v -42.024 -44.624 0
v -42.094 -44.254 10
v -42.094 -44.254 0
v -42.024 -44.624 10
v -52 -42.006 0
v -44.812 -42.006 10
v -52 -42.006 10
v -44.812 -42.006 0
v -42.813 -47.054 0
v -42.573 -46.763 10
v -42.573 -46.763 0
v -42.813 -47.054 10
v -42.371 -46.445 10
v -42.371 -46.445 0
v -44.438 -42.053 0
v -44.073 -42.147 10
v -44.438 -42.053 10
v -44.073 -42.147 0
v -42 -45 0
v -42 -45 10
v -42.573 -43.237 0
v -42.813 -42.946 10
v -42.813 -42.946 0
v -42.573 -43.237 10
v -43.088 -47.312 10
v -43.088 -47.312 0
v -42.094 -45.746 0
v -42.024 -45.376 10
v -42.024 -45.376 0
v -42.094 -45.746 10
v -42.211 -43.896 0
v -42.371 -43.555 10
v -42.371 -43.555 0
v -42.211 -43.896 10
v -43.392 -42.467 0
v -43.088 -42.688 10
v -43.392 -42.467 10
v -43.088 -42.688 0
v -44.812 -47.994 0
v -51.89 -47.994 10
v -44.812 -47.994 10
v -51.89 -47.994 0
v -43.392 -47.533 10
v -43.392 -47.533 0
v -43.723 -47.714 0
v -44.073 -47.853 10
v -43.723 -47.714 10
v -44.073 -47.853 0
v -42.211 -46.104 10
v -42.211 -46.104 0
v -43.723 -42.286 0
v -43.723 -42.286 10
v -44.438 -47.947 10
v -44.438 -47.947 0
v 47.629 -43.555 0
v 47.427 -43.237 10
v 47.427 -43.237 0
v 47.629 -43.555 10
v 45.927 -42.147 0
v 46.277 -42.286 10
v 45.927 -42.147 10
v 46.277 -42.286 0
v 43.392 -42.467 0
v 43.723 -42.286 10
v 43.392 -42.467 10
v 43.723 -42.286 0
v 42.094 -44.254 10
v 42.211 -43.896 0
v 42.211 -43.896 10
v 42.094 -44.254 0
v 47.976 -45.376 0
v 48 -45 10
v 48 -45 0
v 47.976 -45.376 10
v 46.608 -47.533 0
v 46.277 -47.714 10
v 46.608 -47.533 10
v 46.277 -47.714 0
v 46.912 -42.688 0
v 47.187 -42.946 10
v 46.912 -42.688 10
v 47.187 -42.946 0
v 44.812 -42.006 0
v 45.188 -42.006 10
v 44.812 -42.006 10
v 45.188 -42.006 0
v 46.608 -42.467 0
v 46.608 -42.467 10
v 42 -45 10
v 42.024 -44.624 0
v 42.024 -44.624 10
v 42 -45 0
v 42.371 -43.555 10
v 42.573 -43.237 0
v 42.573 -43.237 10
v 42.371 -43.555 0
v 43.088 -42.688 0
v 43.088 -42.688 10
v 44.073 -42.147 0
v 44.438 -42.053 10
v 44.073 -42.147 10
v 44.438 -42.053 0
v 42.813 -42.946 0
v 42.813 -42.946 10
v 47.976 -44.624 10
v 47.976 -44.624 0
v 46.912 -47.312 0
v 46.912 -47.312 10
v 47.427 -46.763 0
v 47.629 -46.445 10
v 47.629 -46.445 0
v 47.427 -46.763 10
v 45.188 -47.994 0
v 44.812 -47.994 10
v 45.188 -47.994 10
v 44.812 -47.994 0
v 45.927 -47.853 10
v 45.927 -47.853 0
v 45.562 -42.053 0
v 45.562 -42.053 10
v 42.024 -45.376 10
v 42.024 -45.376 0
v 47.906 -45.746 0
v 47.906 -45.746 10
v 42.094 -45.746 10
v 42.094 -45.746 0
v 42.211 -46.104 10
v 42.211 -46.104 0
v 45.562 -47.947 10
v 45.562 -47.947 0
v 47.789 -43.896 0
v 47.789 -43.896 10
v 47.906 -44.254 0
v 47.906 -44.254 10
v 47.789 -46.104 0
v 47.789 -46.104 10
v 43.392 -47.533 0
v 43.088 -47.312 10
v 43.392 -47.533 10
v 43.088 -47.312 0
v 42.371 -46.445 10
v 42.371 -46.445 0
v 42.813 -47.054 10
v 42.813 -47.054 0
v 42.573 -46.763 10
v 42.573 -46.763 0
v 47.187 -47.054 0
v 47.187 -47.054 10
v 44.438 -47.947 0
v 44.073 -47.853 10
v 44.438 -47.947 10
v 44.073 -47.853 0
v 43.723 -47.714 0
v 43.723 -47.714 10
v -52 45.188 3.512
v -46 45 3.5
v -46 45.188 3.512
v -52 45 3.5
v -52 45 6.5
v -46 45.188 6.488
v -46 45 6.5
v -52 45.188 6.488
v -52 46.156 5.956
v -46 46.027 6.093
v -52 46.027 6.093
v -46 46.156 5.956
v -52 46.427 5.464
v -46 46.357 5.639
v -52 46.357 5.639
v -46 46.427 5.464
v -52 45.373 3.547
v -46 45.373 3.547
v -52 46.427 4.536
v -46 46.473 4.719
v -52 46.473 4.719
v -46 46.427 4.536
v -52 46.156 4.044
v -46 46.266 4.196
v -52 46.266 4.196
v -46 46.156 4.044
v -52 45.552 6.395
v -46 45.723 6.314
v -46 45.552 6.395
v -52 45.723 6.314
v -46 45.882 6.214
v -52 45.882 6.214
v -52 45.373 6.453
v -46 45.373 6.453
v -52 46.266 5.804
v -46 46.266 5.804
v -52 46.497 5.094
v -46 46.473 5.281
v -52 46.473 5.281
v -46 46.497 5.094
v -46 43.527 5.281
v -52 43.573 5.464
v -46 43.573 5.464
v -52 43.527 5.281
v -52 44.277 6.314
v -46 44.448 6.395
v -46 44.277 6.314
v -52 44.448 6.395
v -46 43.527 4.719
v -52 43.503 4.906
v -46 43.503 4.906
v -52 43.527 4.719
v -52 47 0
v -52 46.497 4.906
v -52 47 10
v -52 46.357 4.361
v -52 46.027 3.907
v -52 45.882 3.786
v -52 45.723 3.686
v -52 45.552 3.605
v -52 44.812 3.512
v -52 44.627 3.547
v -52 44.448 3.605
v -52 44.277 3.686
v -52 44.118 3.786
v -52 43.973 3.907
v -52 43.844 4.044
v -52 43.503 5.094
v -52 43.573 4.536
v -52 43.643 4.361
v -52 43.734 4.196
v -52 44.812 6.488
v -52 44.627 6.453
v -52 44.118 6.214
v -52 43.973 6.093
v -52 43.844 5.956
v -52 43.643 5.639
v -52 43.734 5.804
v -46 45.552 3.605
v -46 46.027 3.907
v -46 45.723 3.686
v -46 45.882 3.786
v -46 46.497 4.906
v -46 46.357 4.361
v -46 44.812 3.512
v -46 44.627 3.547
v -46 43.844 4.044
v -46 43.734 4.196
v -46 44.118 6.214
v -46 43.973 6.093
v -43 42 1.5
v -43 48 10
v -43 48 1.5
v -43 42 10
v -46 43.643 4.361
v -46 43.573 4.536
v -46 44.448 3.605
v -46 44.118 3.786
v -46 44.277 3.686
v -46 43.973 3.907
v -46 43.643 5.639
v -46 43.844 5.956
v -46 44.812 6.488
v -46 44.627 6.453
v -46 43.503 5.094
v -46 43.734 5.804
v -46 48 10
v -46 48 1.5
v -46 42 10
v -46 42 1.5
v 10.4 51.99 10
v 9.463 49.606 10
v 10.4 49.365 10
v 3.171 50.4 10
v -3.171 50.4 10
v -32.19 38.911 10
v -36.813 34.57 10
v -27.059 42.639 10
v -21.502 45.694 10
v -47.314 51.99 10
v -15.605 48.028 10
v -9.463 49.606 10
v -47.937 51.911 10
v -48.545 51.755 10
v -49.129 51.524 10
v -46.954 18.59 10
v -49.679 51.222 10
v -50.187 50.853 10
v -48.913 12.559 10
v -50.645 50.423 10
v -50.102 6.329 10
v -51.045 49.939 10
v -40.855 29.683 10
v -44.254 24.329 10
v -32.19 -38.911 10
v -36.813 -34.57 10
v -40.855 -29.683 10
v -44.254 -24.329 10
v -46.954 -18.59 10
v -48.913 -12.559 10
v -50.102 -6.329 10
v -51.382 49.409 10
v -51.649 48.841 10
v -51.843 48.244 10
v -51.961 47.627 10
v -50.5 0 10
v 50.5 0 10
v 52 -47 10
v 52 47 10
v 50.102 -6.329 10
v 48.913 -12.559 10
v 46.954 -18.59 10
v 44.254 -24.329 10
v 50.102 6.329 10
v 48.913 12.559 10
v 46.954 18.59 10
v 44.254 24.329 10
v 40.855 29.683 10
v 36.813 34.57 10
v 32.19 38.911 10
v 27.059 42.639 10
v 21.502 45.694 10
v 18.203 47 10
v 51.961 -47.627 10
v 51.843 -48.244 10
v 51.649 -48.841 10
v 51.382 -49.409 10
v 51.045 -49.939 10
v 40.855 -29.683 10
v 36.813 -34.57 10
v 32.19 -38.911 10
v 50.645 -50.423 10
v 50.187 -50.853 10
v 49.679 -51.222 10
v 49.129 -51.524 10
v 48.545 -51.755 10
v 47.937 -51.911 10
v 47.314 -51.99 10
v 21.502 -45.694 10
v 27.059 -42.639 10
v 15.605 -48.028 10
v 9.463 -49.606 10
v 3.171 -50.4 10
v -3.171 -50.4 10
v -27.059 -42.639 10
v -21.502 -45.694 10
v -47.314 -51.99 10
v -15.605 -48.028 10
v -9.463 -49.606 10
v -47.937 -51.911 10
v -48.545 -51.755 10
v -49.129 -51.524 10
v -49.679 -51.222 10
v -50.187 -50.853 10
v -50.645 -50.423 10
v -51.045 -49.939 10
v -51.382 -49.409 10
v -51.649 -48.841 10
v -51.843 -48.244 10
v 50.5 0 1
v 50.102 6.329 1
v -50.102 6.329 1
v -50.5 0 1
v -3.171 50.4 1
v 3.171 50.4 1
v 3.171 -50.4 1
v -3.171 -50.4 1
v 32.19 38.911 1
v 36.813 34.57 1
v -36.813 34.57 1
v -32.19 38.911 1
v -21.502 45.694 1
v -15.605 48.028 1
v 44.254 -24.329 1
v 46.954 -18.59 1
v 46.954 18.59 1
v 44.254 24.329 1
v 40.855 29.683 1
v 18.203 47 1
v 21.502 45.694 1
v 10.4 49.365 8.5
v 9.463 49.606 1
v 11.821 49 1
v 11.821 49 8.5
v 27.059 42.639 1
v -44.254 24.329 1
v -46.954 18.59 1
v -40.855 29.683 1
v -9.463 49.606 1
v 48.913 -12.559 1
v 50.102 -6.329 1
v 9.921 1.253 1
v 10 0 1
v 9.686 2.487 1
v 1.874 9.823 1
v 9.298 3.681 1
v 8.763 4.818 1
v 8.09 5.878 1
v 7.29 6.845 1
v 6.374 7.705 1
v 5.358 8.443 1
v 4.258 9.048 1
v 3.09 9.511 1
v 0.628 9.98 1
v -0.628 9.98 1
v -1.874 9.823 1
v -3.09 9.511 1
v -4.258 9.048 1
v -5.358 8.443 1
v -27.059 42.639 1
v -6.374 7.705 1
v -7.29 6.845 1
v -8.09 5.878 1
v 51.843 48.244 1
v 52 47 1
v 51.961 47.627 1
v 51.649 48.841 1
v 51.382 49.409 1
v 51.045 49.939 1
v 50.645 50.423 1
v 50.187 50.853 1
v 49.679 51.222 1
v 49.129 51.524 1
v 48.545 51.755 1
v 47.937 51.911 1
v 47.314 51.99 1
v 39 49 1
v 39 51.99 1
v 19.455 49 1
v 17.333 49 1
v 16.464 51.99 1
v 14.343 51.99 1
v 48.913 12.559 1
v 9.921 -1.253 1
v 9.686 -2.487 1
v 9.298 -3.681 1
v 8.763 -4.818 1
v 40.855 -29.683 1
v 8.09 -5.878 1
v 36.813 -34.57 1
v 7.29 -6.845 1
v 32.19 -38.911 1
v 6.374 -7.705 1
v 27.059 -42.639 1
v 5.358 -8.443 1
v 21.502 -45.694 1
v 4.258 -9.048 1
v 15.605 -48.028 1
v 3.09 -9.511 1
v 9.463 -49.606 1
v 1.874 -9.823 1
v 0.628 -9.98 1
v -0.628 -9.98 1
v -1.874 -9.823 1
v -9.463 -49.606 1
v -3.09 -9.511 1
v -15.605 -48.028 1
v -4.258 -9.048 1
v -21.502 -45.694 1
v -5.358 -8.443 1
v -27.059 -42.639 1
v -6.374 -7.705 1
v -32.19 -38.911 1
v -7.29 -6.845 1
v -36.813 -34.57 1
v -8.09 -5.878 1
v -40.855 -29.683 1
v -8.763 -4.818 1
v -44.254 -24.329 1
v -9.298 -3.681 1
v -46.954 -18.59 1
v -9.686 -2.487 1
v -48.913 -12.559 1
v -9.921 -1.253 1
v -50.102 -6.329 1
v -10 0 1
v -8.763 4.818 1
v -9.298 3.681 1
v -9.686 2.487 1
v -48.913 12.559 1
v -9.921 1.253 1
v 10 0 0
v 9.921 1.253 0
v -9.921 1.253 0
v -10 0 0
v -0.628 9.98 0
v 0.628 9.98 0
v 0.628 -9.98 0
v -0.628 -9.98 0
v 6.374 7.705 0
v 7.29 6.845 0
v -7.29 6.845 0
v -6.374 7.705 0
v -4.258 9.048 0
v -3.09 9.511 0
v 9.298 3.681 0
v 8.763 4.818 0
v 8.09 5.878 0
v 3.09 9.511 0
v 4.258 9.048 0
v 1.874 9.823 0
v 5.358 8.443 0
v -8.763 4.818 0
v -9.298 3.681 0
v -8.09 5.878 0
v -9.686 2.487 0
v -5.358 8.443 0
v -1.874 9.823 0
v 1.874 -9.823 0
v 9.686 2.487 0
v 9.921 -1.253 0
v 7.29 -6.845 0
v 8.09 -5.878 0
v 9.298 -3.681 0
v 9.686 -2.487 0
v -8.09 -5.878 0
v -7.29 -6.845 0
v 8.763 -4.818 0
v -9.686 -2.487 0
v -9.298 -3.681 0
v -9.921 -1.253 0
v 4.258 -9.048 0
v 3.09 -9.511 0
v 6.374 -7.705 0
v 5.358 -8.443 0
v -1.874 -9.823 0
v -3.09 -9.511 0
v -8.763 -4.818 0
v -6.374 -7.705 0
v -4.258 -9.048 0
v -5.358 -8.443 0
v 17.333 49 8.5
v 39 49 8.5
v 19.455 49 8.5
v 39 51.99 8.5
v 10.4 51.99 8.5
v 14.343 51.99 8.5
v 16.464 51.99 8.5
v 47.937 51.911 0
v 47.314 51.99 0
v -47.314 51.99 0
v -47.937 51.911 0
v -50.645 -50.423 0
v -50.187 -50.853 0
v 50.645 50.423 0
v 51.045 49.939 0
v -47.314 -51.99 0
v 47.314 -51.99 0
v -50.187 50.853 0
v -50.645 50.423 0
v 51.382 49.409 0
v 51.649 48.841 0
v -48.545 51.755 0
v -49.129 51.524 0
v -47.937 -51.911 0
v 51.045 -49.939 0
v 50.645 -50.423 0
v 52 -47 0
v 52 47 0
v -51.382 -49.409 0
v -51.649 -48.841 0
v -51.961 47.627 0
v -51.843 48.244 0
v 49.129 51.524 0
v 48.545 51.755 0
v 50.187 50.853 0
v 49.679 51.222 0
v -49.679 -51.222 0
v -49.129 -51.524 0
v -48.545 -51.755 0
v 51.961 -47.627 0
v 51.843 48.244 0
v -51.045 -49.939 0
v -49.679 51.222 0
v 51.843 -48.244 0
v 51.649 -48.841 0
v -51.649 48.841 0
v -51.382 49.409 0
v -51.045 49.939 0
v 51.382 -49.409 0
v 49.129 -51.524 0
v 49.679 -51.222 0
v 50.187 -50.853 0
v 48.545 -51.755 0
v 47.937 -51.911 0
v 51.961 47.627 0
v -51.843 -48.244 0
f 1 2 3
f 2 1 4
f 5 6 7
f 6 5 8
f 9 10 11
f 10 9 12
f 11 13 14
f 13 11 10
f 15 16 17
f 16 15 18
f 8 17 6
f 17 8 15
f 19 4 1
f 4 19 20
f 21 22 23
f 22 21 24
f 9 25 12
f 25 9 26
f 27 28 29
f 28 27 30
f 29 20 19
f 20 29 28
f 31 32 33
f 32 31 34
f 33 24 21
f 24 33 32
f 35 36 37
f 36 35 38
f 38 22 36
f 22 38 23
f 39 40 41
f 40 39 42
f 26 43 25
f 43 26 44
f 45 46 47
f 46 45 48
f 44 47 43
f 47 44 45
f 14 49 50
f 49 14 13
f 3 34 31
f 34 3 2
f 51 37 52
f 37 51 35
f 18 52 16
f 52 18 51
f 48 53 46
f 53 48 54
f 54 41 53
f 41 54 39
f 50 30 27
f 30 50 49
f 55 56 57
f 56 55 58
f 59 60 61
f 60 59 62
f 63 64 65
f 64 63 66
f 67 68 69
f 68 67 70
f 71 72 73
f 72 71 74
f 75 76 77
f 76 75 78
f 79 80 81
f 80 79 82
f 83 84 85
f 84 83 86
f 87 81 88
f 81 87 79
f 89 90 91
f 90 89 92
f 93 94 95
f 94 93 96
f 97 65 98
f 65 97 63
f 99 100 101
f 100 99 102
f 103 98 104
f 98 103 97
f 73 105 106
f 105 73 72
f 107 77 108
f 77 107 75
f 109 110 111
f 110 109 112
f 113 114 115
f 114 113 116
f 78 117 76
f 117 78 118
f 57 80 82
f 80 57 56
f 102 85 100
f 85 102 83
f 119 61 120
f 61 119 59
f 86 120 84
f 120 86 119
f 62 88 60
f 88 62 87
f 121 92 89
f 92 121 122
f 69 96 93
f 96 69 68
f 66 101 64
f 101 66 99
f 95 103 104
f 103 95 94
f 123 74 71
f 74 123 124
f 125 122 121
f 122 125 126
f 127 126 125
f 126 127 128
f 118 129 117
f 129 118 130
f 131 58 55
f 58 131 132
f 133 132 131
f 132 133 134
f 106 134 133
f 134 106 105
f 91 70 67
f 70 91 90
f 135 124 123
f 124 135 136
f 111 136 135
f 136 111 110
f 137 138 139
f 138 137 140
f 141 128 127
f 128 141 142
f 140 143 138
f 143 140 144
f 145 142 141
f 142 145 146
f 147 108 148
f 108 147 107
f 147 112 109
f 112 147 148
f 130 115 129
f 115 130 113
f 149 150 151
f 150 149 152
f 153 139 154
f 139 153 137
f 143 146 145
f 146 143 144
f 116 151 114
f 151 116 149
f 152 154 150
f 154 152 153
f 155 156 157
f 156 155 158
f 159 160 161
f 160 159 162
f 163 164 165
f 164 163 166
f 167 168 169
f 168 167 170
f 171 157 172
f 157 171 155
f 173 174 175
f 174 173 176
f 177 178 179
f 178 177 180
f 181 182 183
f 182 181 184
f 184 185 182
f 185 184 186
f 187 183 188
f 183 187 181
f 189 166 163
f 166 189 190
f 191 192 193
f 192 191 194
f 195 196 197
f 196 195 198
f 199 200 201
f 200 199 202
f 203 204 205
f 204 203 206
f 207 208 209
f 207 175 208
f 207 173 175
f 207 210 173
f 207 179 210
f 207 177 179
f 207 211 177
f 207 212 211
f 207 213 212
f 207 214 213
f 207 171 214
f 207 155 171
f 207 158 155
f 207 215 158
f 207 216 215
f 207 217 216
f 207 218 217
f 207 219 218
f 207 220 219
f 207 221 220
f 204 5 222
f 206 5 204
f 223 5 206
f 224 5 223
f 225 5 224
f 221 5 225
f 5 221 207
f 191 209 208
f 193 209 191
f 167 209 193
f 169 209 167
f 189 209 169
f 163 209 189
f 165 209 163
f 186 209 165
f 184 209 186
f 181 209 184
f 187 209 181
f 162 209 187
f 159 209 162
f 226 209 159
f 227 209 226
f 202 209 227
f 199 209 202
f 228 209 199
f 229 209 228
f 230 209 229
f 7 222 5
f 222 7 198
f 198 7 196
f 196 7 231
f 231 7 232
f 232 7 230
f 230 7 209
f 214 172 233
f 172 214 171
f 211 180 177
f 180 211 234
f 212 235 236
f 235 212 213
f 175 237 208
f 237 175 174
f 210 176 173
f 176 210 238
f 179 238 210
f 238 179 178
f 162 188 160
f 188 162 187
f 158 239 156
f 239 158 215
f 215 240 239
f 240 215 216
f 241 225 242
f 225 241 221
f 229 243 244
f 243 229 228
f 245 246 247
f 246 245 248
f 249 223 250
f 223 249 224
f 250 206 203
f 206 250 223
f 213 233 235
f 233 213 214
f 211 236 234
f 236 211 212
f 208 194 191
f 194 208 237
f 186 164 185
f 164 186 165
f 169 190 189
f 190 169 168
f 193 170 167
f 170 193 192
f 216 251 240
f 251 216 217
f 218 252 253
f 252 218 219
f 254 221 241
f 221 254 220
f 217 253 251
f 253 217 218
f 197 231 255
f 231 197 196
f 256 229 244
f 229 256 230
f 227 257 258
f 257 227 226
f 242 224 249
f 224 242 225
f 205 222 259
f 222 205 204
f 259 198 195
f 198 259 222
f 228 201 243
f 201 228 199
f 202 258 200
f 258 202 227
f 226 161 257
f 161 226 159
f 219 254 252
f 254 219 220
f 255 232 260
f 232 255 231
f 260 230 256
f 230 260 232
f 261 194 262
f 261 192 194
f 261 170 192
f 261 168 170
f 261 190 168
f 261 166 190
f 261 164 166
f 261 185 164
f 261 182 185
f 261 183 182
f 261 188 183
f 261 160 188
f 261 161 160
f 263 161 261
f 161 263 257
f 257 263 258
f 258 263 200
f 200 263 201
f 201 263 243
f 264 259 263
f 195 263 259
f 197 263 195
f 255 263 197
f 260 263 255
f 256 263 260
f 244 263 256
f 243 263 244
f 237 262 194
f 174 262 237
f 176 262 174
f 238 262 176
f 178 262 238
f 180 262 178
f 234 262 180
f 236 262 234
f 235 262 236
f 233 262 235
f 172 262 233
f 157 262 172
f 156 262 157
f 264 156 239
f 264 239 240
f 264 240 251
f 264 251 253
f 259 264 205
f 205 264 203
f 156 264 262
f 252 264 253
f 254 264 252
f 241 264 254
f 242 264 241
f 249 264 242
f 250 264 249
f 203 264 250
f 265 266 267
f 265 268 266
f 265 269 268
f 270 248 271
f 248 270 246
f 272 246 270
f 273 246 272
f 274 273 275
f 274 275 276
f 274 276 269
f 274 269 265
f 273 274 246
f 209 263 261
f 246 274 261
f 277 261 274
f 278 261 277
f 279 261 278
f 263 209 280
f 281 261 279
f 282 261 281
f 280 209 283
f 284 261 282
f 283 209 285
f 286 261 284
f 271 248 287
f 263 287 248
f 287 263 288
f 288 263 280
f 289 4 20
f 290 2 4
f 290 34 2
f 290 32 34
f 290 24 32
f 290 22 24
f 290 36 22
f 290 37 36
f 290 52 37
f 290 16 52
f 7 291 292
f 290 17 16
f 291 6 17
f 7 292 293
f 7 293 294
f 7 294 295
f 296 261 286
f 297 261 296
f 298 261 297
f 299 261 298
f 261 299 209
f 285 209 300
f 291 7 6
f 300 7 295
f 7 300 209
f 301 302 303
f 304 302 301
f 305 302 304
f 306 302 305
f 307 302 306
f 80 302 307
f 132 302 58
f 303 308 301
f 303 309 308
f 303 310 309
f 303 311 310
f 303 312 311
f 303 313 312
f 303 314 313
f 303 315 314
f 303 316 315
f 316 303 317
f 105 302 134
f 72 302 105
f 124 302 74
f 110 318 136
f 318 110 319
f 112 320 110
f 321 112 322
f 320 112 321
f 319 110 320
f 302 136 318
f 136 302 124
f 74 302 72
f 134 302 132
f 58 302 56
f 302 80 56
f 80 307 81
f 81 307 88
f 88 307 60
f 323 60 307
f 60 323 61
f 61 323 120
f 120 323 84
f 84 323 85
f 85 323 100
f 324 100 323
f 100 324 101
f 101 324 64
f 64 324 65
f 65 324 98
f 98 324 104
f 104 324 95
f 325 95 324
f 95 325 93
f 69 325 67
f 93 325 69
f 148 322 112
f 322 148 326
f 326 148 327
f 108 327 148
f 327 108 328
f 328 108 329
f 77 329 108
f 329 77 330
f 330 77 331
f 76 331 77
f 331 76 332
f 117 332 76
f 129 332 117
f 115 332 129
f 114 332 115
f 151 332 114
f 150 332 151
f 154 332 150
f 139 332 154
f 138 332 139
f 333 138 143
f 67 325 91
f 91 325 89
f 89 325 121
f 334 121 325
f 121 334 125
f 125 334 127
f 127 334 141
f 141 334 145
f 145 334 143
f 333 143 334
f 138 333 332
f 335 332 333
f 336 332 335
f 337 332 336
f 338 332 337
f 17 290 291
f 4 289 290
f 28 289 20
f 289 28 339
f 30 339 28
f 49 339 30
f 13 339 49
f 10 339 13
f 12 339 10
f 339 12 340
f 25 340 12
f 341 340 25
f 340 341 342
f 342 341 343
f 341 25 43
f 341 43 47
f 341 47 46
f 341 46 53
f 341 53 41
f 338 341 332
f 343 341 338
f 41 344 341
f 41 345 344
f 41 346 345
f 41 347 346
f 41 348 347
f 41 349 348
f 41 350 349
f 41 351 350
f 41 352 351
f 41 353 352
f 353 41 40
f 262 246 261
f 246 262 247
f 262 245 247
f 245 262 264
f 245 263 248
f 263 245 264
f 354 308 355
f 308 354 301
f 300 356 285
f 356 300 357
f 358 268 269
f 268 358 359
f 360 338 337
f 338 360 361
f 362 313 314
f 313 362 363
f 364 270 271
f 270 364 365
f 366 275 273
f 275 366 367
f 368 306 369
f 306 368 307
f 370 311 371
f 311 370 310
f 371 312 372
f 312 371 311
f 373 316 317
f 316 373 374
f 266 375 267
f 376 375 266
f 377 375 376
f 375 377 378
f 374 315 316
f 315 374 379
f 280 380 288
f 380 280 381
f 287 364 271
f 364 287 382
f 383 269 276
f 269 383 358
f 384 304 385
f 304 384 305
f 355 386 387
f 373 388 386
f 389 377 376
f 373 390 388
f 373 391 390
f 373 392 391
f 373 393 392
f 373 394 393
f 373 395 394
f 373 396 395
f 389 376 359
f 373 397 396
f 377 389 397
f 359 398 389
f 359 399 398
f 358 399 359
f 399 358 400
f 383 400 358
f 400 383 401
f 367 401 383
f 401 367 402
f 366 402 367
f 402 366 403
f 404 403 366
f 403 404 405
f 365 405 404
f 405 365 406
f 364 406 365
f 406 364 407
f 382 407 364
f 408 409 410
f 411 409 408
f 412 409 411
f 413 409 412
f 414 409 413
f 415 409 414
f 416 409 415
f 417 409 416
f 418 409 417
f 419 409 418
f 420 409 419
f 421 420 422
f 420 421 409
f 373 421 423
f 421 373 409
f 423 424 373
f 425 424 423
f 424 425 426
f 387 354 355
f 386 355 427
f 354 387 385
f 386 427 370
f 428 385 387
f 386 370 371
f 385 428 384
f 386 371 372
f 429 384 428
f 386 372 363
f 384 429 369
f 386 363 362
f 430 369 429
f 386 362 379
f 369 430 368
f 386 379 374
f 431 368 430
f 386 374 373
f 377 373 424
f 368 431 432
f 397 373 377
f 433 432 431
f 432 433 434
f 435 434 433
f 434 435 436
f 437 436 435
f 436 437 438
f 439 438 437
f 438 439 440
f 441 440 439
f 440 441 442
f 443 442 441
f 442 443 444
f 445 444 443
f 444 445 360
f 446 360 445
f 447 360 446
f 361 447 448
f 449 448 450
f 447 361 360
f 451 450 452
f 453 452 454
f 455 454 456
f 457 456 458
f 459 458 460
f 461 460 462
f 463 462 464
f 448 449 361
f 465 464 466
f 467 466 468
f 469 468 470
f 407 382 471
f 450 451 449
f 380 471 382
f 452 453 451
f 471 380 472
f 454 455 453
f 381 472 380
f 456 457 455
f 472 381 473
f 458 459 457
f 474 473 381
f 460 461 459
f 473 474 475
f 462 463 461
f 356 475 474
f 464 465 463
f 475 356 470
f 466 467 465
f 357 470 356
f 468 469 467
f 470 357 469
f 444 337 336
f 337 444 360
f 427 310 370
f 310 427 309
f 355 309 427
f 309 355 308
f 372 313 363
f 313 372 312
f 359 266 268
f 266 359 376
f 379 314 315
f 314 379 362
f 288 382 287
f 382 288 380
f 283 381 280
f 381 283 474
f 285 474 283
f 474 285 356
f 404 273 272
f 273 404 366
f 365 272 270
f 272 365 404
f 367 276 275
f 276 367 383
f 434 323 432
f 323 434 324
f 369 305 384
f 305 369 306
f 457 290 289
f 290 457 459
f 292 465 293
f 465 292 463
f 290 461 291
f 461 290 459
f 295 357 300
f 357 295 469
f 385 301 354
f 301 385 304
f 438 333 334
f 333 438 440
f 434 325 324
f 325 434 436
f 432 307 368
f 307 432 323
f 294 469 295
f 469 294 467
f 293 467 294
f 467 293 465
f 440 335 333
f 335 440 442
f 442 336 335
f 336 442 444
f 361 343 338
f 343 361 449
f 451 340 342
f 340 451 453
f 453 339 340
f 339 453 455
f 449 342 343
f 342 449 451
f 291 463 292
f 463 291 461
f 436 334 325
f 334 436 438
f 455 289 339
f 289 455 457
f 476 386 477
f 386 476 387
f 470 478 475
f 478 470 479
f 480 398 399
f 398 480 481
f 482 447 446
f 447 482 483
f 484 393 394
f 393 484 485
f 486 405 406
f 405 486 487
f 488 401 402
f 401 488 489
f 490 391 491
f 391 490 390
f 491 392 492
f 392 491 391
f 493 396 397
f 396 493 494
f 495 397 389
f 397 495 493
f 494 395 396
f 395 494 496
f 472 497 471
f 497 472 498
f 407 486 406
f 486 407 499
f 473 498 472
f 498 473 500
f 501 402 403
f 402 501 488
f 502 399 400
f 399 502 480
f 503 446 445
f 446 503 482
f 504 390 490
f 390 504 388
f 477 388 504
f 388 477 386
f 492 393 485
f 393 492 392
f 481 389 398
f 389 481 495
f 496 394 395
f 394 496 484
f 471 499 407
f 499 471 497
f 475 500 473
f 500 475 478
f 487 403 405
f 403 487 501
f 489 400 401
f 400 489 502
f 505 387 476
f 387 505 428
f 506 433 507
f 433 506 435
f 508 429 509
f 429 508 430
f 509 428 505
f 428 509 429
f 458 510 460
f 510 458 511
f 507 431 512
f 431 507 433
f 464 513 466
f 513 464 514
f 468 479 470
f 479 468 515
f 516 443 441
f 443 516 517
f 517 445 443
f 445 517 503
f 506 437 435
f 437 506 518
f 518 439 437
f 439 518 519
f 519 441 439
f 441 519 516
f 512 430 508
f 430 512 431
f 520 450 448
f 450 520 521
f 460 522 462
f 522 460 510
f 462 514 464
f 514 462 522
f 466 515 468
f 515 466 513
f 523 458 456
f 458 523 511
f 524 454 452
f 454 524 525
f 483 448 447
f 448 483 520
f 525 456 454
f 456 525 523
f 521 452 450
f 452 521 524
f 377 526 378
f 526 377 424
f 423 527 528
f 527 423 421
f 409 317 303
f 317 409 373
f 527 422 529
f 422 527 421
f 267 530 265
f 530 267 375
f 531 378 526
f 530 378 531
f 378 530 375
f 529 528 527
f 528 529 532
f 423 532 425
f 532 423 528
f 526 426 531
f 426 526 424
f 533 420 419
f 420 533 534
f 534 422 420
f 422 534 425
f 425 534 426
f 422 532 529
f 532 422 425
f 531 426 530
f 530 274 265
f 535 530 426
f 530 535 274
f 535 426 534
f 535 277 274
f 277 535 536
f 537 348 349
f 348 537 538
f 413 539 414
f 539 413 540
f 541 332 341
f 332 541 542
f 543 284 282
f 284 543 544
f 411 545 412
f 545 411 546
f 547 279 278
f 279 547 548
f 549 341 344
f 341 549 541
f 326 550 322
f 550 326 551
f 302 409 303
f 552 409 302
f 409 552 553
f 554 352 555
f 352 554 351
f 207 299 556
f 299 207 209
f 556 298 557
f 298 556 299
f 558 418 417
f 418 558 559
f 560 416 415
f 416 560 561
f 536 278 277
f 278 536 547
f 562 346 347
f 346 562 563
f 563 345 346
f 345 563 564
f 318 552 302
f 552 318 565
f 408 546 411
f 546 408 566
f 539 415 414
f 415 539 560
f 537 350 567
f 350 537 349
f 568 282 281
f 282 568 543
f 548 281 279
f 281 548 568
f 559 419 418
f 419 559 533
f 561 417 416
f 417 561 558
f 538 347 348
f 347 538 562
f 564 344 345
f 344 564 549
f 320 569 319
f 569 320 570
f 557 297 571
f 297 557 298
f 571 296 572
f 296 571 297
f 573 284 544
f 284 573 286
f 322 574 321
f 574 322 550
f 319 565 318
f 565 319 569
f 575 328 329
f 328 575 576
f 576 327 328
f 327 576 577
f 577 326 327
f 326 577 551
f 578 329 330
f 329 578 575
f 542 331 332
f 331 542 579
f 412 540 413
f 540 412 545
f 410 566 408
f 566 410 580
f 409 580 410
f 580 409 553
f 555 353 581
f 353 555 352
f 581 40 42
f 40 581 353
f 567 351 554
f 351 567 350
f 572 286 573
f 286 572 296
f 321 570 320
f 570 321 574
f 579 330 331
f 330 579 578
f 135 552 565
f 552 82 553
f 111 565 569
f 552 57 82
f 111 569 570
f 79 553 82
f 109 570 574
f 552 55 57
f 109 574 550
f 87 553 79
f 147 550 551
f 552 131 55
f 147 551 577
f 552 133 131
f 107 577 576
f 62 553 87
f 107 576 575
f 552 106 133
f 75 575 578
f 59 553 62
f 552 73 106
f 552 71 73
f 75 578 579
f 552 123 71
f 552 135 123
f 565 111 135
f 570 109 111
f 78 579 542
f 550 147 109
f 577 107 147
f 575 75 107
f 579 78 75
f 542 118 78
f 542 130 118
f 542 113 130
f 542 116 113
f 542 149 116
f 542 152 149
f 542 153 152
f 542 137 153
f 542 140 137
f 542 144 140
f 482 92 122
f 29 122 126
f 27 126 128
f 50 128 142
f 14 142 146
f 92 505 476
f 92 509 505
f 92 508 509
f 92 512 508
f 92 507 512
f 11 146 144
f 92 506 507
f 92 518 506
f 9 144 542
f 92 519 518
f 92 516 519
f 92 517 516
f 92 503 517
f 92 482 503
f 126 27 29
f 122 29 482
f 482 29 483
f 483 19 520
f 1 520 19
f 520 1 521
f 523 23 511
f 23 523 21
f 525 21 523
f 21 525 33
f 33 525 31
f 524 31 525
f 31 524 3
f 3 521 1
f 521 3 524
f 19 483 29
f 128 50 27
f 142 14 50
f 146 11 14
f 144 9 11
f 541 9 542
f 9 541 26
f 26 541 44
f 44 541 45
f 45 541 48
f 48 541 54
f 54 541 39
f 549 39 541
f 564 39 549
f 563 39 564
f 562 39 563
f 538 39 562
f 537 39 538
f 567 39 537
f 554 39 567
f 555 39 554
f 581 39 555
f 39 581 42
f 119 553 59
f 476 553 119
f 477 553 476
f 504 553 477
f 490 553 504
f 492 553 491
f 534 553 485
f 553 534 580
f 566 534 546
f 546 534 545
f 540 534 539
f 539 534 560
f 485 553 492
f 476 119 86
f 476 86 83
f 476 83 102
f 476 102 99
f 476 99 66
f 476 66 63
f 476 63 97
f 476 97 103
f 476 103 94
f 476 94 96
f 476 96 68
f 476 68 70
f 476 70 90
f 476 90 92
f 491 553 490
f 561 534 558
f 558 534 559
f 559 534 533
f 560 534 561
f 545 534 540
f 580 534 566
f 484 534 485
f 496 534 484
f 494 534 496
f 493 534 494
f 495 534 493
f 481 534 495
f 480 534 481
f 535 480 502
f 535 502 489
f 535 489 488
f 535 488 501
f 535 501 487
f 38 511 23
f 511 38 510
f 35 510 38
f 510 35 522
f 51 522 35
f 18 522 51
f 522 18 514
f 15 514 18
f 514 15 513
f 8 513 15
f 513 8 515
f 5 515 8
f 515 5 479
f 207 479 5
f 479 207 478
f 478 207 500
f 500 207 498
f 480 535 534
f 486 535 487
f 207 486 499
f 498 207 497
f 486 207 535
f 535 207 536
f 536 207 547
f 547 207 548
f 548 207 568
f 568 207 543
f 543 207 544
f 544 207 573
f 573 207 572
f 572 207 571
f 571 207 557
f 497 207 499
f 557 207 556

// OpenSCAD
$fn = 50;


difference() {
	union() {
		translate(v = [0, 0, 0]) {
			rotate(a = [0, 0, 0]) {
				hull() {
					translate(v = [-47.0000000000, 47.0000000000, 0]) {
						rotate(a = [0, 0, 0]) {
							translate(v = [0, 0, 0]) {
								rotate(a = [0, 0, 0]) {
									cylinder(h = 10, r = 5);
								}
							}
						}
					}
					translate(v = [47.0000000000, 47.0000000000, 0]) {
						rotate(a = [0, 0, 0]) {
							translate(v = [0, 0, 0]) {
								rotate(a = [0, 0, 0]) {
									cylinder(h = 10, r = 5);
								}
							}
						}
					}
					translate(v = [-47.0000000000, -47.0000000000, 0]) {
						rotate(a = [0, 0, 0]) {
							translate(v = [0, 0, 0]) {
								rotate(a = [0, 0, 0]) {
									cylinder(h = 10, r = 5);
								}
							}
						}
					}
					translate(v = [47.0000000000, -47.0000000000, 0]) {
						rotate(a = [0, 0, 0]) {
							translate(v = [0, 0, 0]) {
								rotate(a = [0, 0, 0]) {
									cylinder(h = 10, r = 5);
								}
							}
						}
					}
				}
			}
		}
	}
	union() {
		translate(v = [-52.5000000000, -45.0000000000, -125]) {
			rotate(a = [0, 0, 0]) {
				hull() {
					translate(v = [7.5000000000, 0, 0]) {
						rotate(a = [0, 0, 0]) {
							translate(v = [0, 0, 0]) {
								rotate(a = [0, 0, 0]) {
									cylinder(h = 250, r = 3.0000000000);
								}
							}
						}
					}
					translate(v = [-7.5000000000, 0, 0]) {
						rotate(a = [0, 0, 0]) {
							translate(v = [0, 0, 0]) {
								rotate(a = [0, 0, 0]) {
									cylinder(h = 250, r = 3.0000000000);
								}
							}
						}
					}
				}
			}
		}
		translate(v = [45.0000000000, -45.0000000000, -125.0000000000]) {
			rotate(a = [0, 0, 0]) {
				cylinder(h = 250, r = 3.0000000000);
			}
		}
		translate(v = [-52.0000000000, 45.0000000000, 5.0000000000]) {
			rotate(a = [0, 90, 0]) {
				cylinder(h = 9, r = 1.5000000000);
			}
		}
		translate(v = [-46.0000000000, 42.0000000000, 1.5000000000]) {
			rotate(a = [0, 0, 0]) {
				cube(size = [3, 6, 8.5000000000]);
			}
		}
		translate(v = [0, 0, 1.0000000000]) {
			rotate(a = [0, 0, 0]) {
				cylinder(h = 12, r = 50.5000000000);
			}
		}
		translate(v = [0, 0, -5.0000000000]) {
			rotate(a = [0, 0, 0]) {
				cylinder(h = 10, r = 10.0000000000);
			}
		}
		translate(v = [0.0000000000, 47.0000000000, 1]) {
			rotate(a = [0, 0, 0]) {
				cube(size = [52.0000000000, 2, 12]);
			}
		}
		translate(v = [39.0000000000, 47.0000000000, 1]) {
			rotate(a = [0, 0, 0]) {
				cube(size = [13.0000000000, 5, 12]);
			}
		}
		translate(v = [10.4000000000, 47.0000000000, 8.5000000000]) {
			rotate(a = [0, 0, 0]) {
				cube(size = [41.6000000000, 5, 1.5000000000]);
			}
		}
		translate(v = [13.5833333333, 52.7500000000, 1]) {
			rotate(a = [0, 0, -45]) {
				cube(size = [7.5000000000, 1.5000000000, 12]);
			}
		}
	}
}
